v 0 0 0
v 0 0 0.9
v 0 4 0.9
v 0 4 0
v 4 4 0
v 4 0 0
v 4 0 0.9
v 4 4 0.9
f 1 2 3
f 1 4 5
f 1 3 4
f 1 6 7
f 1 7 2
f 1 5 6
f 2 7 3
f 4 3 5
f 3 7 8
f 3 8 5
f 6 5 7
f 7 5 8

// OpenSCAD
/* Warning, this is a very basic generator with a lot of approximation 
input data : [VDFN, JWA, 4x4x0.9mm, 8, , B, C04-01023B]
generated by com.zoubworld.electronics.cad.model3d.Basic
Date : Sun Feb 15 10:50:49 CET 2026
*/

//body
color("black")
translate([0,0,0])
cube([4.0,4.0,0.9], center=false);
